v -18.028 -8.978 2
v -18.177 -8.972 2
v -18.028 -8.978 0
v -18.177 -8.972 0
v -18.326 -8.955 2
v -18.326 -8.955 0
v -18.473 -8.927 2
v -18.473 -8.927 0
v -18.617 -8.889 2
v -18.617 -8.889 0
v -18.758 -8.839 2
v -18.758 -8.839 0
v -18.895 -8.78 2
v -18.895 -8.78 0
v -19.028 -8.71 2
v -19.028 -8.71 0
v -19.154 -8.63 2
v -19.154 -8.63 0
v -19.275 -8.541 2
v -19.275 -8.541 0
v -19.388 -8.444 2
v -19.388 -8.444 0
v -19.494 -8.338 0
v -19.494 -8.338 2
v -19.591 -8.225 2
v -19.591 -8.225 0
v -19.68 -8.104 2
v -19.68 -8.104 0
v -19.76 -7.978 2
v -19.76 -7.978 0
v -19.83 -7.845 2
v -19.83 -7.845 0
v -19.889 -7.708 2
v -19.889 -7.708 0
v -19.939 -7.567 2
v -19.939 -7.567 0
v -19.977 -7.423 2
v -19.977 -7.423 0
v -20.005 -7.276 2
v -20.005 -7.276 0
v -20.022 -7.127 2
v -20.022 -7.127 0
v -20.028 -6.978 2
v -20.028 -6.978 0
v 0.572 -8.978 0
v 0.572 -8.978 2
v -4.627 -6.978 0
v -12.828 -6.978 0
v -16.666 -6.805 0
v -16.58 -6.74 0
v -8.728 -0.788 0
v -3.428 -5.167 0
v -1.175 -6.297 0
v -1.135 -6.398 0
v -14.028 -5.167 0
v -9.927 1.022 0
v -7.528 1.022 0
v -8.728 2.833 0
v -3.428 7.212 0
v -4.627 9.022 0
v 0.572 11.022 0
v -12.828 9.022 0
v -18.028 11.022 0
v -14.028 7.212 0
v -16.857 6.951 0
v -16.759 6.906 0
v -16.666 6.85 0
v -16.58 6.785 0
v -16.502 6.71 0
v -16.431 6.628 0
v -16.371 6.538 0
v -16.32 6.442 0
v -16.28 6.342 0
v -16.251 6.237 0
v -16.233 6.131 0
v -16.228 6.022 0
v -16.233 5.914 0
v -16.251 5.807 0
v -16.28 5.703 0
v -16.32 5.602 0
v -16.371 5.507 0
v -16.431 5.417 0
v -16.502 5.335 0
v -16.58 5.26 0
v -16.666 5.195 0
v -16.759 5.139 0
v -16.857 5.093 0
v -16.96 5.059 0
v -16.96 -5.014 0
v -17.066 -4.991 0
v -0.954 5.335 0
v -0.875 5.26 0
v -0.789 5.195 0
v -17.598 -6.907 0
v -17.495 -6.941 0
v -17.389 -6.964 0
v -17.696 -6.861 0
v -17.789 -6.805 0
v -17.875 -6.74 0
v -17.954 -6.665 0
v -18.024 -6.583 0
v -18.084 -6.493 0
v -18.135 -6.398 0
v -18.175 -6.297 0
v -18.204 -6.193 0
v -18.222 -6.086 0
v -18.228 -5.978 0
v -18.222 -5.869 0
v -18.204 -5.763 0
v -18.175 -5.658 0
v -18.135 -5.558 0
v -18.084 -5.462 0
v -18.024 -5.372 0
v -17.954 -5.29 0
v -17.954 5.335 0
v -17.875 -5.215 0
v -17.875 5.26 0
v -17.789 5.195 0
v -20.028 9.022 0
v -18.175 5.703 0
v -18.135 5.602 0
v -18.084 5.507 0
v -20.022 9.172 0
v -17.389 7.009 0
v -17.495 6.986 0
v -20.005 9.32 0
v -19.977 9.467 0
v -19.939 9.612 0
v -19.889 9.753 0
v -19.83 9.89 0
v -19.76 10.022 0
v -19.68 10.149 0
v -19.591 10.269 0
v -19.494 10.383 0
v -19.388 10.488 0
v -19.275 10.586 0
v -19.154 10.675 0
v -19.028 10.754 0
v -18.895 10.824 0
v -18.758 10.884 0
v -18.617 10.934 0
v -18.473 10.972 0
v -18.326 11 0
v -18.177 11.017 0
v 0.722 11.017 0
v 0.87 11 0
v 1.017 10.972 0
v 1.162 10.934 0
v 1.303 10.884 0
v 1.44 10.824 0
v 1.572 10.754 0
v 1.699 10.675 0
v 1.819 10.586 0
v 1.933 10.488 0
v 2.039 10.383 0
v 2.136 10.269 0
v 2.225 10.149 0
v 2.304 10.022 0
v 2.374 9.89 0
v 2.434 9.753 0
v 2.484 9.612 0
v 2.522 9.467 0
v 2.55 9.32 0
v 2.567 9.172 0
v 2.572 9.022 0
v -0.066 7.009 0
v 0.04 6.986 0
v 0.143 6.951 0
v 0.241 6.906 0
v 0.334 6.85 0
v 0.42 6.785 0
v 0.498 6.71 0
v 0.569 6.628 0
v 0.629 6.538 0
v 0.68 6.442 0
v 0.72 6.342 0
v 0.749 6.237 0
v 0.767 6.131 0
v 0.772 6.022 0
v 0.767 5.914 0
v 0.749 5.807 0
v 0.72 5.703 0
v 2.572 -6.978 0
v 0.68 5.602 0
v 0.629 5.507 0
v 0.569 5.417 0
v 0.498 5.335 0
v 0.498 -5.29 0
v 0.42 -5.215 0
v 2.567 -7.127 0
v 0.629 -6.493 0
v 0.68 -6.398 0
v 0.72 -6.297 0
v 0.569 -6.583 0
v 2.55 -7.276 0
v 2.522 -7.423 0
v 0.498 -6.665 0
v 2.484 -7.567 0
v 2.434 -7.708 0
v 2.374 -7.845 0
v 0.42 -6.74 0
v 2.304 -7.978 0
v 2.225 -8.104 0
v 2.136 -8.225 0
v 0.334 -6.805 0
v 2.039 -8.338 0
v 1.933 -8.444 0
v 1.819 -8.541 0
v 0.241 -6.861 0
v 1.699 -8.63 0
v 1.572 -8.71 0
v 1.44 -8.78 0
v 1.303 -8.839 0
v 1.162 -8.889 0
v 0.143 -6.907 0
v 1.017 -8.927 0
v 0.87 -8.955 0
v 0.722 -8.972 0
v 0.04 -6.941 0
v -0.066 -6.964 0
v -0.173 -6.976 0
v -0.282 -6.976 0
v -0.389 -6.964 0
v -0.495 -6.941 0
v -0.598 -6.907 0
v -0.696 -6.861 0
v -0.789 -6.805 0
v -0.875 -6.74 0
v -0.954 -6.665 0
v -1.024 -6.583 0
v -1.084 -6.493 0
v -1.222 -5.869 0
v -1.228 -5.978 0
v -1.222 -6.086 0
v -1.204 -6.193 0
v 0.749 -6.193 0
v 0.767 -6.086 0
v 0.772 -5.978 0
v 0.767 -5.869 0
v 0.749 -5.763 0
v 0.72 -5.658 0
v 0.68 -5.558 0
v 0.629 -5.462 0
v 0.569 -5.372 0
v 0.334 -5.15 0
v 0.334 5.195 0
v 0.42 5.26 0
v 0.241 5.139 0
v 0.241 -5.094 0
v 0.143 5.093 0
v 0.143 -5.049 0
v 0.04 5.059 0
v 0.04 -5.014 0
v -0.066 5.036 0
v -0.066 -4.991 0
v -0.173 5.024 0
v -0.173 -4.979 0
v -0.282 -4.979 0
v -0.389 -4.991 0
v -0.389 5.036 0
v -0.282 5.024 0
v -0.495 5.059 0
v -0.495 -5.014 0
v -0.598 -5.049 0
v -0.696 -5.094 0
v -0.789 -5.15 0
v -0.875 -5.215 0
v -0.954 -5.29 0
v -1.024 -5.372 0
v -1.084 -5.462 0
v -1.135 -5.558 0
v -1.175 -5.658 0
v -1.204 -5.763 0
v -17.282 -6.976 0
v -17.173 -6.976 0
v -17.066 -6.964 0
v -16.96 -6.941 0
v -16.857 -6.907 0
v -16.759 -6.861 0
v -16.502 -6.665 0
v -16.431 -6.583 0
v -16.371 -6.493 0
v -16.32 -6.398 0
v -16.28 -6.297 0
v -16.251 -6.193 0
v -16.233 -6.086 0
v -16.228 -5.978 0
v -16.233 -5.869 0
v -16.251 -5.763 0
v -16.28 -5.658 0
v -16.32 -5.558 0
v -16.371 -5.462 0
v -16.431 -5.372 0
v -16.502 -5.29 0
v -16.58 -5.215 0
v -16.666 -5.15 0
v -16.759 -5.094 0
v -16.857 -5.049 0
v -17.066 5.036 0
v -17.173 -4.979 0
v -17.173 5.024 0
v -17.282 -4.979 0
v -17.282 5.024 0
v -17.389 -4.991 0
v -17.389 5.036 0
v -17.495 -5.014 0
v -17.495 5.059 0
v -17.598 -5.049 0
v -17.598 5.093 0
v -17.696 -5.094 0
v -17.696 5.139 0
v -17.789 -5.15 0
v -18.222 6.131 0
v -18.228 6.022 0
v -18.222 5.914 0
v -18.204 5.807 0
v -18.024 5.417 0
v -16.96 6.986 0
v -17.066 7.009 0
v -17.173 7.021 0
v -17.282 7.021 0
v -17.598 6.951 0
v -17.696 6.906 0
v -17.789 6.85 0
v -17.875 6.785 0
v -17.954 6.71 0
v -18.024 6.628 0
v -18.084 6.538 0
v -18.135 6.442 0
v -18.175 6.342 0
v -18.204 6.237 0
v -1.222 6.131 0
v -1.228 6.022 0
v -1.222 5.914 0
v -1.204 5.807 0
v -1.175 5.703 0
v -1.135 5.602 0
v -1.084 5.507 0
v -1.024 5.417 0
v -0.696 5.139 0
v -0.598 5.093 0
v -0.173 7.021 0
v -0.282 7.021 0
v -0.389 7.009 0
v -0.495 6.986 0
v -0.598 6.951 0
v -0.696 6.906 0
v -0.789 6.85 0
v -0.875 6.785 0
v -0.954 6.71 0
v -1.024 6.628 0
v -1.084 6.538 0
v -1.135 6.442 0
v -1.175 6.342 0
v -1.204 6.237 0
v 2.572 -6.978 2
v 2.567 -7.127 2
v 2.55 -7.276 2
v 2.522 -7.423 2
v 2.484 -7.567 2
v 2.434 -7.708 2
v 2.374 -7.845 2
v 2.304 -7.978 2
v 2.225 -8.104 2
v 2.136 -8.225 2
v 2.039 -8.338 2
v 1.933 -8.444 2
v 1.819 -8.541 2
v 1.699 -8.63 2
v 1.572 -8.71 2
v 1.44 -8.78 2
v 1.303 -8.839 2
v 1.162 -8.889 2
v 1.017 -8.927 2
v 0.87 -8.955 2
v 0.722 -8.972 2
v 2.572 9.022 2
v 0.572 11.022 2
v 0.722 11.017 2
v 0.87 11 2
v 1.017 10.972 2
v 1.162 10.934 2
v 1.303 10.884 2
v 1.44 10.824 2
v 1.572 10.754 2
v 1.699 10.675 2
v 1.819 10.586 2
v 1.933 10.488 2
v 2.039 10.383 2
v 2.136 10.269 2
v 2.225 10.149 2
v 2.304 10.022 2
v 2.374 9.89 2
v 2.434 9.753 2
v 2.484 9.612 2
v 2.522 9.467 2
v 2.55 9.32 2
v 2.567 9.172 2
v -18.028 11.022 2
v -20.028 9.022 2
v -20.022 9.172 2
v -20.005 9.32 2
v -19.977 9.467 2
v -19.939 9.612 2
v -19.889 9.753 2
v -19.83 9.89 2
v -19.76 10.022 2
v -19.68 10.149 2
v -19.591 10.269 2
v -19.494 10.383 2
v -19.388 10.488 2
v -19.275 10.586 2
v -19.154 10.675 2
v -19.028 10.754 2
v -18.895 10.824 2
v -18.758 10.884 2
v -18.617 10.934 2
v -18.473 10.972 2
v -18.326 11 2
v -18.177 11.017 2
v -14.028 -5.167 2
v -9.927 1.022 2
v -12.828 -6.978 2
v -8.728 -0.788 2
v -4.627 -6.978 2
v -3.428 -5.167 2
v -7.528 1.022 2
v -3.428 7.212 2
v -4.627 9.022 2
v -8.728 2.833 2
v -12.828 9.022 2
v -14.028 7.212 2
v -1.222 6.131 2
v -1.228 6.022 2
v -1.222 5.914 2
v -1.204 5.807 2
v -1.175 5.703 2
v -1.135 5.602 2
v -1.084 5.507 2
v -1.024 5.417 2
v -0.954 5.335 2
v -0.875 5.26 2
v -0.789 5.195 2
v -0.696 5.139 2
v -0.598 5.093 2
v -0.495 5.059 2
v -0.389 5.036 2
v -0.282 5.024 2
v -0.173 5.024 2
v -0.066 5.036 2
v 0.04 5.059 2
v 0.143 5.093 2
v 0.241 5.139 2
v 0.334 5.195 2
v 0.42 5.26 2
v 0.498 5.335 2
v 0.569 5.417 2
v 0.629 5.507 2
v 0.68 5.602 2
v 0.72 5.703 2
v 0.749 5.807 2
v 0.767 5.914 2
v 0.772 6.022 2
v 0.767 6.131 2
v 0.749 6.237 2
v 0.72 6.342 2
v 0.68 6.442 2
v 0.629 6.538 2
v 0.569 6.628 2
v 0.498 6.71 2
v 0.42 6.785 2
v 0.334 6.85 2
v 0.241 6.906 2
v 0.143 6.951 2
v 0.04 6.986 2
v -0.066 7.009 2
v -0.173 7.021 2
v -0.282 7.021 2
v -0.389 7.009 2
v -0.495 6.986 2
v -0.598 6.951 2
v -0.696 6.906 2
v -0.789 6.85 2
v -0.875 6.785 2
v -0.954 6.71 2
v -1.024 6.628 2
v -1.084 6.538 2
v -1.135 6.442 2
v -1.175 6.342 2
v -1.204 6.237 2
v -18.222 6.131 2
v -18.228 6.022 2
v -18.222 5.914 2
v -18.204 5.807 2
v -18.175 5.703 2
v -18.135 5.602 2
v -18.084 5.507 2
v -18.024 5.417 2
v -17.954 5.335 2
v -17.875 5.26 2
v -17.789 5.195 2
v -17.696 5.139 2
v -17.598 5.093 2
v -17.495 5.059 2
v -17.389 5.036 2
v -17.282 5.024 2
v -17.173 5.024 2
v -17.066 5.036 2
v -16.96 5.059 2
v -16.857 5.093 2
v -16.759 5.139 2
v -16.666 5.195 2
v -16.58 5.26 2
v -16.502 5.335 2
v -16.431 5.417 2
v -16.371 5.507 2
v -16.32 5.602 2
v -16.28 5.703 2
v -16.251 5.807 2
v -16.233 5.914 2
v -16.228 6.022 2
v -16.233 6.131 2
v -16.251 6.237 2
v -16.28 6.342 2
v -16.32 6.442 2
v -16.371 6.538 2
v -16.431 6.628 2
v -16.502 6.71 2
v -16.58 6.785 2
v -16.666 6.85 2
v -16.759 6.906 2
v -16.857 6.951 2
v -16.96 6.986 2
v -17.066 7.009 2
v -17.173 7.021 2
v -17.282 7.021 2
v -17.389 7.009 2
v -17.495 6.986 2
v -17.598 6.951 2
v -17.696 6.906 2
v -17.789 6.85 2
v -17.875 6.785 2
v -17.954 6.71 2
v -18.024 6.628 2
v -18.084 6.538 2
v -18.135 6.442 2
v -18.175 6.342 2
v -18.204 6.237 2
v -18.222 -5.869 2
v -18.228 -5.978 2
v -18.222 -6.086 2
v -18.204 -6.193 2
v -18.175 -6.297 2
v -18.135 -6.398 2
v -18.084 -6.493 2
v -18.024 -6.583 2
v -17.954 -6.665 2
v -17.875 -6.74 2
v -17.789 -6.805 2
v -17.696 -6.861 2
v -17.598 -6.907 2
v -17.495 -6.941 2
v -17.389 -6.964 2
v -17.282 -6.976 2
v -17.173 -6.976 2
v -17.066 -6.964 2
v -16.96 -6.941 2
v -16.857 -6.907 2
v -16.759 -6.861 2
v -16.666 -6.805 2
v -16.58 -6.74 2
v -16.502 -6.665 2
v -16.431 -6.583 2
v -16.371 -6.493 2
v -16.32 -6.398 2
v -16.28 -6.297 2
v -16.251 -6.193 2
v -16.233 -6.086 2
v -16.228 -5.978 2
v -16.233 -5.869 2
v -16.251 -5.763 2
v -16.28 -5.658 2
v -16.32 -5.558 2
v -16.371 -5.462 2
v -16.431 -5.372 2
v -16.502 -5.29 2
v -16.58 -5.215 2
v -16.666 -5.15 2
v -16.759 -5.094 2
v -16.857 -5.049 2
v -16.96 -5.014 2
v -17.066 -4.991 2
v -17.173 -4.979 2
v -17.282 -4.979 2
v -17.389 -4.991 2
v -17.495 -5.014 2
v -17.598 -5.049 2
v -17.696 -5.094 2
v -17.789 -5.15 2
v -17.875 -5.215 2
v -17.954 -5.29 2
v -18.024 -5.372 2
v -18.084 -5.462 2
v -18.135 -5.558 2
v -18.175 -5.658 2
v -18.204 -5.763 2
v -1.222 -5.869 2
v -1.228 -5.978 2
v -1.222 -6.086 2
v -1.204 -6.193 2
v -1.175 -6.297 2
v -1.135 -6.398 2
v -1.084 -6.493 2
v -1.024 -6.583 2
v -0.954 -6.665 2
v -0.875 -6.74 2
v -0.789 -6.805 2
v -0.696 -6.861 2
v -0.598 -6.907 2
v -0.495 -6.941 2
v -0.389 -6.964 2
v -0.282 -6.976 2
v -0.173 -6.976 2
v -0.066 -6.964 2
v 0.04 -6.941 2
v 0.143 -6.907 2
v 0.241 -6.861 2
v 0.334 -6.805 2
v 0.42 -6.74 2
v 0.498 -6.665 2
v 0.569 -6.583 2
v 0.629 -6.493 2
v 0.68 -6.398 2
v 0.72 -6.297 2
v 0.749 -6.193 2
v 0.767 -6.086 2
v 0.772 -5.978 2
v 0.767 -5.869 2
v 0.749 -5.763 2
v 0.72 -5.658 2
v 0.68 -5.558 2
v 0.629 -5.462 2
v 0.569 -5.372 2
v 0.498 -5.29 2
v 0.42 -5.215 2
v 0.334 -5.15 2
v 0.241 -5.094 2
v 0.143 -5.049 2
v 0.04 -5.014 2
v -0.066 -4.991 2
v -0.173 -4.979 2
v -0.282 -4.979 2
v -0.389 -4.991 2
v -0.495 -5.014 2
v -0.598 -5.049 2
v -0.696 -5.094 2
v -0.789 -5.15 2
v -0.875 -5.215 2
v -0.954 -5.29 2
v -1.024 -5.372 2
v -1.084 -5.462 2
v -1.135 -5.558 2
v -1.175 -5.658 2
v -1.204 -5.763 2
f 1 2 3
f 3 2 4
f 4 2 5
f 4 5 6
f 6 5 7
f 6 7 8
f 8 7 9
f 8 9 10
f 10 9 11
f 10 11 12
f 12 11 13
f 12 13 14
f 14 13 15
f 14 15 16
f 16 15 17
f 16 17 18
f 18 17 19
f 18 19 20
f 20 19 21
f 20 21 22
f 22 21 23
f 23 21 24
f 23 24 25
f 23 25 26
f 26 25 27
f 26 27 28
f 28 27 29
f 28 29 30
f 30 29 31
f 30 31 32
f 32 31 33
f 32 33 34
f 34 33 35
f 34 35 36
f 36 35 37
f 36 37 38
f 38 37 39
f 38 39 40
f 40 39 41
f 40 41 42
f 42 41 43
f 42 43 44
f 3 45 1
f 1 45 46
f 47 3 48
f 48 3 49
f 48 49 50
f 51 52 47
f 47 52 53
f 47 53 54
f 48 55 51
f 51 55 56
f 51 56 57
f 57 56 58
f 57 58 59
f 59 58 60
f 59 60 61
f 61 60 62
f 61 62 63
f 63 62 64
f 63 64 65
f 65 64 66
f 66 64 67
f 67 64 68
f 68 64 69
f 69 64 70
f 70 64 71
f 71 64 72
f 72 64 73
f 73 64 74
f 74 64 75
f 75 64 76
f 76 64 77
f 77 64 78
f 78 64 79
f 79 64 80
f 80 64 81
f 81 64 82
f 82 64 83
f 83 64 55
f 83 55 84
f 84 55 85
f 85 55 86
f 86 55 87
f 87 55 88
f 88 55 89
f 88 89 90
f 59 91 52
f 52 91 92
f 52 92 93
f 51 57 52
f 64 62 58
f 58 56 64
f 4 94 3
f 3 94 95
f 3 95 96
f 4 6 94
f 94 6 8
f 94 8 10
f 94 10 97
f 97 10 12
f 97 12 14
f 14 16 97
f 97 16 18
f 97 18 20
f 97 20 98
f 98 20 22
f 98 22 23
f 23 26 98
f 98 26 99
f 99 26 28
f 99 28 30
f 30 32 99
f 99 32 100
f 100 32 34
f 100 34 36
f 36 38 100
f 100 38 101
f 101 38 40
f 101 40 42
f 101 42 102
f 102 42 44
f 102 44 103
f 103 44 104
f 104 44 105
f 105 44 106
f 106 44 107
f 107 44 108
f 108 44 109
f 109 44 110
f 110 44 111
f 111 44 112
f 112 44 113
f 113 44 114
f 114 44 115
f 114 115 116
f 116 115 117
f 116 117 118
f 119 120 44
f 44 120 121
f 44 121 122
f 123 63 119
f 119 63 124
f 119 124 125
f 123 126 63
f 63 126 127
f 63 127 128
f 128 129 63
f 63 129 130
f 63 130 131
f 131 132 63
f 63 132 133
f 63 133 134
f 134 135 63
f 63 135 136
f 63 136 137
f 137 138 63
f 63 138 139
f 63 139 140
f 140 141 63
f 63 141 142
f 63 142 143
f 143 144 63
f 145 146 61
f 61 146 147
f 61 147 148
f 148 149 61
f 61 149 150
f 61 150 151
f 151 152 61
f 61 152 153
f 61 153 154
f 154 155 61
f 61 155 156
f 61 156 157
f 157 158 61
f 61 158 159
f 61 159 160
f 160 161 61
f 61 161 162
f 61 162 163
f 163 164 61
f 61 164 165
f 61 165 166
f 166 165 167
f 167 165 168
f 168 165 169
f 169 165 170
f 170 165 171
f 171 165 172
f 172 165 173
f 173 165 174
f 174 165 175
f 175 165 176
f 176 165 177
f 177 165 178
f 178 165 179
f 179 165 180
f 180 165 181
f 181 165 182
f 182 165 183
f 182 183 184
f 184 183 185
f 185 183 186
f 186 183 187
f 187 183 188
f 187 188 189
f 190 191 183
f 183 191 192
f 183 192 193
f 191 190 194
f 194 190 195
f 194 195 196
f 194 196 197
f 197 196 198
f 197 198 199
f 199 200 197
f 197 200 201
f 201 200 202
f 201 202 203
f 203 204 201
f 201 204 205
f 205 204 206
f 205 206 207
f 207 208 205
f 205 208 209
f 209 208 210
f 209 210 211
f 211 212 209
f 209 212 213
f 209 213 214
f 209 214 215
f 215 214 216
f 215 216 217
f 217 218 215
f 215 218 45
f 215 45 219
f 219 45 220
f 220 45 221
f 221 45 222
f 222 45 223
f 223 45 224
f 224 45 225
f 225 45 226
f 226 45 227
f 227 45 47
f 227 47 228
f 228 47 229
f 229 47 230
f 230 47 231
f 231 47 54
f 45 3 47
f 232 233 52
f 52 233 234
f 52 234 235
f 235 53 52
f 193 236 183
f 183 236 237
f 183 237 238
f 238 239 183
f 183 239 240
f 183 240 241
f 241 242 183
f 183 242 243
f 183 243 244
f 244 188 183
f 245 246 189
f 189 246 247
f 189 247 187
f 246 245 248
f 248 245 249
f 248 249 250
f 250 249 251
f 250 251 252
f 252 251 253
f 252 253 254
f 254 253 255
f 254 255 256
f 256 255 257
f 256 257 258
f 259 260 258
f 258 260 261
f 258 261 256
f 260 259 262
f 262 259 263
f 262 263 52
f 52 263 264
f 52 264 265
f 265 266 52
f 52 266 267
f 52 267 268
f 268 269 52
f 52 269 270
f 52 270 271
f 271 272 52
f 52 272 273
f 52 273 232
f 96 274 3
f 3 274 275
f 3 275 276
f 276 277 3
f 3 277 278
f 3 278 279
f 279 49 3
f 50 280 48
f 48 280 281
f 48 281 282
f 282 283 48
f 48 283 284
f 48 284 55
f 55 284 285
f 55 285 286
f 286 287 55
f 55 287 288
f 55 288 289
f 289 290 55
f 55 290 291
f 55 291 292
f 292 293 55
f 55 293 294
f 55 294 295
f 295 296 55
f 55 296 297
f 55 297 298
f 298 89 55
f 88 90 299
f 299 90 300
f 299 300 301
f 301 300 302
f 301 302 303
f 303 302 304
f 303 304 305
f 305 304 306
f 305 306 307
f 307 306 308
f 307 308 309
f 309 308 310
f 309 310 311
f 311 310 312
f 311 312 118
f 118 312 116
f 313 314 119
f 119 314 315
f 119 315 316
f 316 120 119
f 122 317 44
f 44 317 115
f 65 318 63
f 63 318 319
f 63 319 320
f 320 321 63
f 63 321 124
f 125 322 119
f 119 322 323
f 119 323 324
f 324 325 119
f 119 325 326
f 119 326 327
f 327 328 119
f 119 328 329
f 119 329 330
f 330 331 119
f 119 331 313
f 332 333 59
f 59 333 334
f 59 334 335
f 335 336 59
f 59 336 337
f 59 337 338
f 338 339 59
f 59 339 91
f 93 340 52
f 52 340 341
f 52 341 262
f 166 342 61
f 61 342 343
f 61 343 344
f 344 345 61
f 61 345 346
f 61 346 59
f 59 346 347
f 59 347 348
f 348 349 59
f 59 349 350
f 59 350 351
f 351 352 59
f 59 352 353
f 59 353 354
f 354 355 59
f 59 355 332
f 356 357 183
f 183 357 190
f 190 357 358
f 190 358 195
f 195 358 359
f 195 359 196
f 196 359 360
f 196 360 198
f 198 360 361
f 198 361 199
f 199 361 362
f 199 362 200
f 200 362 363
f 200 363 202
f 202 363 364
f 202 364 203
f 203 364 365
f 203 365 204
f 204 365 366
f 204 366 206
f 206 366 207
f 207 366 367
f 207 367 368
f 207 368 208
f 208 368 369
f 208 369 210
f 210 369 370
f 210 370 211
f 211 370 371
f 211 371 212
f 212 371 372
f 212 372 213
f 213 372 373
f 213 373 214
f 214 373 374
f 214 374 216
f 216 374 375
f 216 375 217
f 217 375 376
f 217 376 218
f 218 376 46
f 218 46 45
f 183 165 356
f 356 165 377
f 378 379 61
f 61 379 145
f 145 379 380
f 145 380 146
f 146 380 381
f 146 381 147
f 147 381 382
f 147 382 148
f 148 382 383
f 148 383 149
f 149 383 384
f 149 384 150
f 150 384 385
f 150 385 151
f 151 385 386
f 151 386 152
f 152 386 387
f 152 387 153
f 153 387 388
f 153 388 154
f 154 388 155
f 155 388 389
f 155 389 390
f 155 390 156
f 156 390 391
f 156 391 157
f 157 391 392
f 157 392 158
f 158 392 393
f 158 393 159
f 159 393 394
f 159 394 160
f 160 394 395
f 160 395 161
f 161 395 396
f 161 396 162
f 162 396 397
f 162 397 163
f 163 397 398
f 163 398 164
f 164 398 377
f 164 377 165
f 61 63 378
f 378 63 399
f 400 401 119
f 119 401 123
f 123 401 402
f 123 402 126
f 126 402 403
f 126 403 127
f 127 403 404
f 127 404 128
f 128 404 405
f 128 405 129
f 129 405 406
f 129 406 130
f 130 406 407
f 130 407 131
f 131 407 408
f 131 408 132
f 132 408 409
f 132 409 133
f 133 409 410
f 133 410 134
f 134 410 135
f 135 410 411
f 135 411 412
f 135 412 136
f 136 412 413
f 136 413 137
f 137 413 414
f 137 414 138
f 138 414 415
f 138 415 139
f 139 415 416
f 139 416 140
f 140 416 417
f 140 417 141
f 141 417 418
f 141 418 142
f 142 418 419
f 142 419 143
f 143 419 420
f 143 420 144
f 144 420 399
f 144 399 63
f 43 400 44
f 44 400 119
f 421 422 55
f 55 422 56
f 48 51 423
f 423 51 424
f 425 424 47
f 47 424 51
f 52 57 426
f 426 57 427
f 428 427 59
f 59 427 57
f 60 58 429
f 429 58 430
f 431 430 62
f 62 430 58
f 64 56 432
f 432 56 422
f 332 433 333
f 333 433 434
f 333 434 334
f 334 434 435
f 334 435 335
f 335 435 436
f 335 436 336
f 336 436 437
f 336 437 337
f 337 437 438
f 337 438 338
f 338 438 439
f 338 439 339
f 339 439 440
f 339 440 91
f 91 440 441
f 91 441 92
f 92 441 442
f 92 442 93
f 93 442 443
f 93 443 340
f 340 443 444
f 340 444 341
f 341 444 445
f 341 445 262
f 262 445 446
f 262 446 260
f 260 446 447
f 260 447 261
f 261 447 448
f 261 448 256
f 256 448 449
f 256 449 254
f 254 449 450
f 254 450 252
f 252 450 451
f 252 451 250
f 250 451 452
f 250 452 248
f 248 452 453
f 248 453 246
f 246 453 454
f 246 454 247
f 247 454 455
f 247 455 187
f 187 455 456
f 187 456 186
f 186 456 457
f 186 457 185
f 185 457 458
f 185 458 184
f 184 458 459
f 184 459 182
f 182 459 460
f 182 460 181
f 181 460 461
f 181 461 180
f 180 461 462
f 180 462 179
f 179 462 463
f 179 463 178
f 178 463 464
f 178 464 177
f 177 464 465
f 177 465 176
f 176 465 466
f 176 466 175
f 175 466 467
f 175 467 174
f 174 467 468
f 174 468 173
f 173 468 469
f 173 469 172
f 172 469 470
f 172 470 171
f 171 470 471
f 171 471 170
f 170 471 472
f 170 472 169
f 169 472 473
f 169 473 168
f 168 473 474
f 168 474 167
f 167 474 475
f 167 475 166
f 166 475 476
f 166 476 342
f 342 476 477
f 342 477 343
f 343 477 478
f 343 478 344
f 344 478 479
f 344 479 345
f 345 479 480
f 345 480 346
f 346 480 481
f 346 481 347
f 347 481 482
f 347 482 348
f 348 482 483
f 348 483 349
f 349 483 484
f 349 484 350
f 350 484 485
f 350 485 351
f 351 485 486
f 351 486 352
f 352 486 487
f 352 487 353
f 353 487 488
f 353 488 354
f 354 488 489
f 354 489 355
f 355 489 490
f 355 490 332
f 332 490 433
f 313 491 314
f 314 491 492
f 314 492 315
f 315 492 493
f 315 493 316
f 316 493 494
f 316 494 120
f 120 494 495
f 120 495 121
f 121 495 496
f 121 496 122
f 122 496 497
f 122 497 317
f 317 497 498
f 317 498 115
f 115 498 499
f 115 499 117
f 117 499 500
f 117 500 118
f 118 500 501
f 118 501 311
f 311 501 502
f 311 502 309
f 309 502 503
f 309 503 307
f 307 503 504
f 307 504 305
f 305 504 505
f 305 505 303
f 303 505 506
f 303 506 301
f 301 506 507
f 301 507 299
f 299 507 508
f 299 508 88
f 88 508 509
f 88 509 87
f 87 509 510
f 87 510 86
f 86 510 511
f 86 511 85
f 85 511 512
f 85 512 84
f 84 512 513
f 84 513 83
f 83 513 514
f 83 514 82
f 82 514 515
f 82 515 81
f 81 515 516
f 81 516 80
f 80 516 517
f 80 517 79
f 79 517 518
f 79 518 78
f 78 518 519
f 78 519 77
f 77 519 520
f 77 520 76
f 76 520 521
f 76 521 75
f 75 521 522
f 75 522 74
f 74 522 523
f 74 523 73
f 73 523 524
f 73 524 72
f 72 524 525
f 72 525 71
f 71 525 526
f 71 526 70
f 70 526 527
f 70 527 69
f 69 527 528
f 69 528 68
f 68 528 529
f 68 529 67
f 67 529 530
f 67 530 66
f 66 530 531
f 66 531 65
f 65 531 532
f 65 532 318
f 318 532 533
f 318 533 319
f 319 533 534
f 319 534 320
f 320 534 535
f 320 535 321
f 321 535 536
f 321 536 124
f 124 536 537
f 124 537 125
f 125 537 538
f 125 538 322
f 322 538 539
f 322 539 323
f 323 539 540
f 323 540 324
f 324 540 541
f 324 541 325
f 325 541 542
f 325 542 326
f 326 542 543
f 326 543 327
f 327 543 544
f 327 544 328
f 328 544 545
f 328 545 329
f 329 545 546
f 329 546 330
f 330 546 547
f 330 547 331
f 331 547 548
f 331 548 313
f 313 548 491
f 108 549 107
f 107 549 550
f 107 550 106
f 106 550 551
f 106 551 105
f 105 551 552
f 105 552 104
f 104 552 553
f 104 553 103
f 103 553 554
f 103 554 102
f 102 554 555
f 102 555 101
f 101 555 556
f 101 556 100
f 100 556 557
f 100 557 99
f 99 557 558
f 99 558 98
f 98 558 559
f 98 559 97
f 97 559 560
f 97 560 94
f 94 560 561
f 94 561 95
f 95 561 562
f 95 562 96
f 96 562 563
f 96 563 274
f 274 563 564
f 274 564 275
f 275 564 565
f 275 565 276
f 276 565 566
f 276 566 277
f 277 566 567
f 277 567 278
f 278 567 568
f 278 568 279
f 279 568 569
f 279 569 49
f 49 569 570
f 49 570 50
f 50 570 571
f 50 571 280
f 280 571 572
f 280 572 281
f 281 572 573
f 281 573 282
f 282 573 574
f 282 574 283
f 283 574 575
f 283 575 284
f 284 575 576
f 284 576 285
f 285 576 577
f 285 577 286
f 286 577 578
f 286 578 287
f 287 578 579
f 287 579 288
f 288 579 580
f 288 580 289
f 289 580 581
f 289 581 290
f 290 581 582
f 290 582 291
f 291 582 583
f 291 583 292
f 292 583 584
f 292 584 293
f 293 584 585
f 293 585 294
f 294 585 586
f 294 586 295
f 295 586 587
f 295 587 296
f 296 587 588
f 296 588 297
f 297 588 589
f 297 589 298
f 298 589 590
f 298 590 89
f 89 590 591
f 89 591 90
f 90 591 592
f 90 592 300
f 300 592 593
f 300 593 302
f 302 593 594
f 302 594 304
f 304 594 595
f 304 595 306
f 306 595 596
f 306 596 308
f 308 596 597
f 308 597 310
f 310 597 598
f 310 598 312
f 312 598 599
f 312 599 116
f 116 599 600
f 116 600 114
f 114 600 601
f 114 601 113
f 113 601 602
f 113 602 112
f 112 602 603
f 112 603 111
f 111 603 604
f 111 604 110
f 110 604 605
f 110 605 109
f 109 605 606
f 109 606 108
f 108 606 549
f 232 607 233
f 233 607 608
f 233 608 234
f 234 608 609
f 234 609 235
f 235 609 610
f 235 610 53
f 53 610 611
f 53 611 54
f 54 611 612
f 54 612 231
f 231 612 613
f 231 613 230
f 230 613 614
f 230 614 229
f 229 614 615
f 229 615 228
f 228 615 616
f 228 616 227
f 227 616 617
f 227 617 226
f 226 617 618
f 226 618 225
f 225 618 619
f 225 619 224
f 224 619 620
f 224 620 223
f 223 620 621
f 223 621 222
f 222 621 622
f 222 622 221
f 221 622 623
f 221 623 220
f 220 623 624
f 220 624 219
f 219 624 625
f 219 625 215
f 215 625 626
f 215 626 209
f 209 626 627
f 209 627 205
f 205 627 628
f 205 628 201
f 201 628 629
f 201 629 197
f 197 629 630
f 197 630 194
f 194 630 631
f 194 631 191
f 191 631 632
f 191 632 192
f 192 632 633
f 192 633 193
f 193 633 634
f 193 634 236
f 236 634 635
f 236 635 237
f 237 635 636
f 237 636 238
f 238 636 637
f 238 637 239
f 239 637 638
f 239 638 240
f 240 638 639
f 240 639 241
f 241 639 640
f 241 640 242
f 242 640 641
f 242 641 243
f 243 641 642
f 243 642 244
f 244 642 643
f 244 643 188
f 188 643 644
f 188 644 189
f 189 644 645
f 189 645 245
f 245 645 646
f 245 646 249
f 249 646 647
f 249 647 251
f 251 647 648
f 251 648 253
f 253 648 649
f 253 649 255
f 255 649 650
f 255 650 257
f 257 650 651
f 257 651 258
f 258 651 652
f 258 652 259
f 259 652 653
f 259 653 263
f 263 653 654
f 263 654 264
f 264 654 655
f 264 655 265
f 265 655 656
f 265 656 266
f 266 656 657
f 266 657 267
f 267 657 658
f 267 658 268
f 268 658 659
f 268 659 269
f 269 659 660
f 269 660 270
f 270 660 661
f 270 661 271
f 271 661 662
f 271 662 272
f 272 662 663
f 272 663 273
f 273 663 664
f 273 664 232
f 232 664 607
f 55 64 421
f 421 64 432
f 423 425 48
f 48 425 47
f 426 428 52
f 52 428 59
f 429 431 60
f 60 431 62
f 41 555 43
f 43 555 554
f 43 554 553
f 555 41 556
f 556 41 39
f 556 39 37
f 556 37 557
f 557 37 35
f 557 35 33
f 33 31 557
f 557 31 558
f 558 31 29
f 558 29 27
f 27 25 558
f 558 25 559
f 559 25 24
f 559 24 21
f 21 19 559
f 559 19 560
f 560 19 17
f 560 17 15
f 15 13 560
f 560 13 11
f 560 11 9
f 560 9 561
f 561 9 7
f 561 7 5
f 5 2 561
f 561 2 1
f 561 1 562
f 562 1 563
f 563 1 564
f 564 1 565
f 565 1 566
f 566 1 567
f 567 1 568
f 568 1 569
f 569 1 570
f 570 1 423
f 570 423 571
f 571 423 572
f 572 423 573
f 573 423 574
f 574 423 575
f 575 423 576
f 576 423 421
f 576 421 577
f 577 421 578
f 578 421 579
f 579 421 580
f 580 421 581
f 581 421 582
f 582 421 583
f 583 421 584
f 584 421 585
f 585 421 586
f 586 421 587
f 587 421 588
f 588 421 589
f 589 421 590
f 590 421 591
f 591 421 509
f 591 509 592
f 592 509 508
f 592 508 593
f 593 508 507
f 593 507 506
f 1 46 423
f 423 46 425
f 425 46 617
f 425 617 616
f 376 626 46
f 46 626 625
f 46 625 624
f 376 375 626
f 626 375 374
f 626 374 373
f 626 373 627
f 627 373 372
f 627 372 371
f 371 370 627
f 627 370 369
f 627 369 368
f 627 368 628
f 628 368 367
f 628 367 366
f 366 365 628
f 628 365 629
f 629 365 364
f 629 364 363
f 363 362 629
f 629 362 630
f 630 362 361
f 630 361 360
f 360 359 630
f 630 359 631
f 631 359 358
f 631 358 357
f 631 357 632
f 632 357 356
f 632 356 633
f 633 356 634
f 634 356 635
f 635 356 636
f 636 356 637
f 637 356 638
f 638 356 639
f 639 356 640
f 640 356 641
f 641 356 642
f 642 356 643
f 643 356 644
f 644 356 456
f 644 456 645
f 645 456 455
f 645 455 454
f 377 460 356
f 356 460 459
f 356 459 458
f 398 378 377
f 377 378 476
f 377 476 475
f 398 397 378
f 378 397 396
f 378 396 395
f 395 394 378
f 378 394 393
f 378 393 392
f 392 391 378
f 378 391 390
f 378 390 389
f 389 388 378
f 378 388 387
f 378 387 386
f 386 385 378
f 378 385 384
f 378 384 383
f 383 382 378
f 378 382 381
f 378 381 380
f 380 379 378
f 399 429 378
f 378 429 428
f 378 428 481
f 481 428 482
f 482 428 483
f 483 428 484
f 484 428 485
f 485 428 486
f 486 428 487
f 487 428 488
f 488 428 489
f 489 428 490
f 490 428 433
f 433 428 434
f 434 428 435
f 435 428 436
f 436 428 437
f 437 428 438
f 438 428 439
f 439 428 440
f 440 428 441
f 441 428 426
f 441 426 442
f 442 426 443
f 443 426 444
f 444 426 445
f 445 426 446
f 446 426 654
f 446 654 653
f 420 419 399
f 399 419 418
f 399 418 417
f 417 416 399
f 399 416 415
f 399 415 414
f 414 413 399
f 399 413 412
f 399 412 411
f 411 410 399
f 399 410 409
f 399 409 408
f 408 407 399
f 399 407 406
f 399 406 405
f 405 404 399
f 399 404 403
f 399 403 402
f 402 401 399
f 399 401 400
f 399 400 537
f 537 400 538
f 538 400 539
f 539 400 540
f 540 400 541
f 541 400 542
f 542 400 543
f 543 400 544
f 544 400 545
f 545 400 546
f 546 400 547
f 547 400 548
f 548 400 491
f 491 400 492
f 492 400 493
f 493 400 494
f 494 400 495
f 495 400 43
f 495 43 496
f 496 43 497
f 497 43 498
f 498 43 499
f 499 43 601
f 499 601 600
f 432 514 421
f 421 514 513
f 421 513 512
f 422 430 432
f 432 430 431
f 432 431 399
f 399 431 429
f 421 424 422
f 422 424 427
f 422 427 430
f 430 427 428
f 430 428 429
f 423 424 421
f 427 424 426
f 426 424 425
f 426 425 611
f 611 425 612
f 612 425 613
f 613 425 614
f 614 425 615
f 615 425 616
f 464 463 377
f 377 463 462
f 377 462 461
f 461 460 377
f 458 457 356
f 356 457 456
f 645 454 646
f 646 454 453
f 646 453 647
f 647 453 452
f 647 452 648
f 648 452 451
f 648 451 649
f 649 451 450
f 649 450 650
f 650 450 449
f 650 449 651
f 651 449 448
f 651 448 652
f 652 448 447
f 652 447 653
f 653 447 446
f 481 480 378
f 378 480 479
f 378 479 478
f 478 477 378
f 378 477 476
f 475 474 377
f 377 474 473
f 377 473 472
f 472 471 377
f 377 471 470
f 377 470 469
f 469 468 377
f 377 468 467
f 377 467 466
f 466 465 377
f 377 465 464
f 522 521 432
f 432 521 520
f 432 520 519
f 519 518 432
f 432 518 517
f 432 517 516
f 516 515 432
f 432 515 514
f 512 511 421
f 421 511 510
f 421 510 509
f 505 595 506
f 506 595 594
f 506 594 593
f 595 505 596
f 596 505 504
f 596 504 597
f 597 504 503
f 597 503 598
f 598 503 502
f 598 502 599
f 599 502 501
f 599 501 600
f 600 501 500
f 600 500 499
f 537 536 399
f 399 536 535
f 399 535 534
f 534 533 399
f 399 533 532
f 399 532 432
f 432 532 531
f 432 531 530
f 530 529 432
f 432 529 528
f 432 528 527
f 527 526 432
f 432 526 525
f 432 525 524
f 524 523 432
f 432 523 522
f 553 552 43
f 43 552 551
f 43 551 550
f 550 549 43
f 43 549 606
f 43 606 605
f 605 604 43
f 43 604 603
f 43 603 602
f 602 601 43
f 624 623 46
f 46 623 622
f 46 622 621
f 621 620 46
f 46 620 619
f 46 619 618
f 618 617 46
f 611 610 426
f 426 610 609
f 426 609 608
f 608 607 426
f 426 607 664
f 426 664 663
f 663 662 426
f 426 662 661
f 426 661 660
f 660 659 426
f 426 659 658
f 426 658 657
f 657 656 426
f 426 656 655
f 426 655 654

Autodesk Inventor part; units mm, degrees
ref_plane "YZ Plane" through (0, 0, 0) normal (1, 0, 0) x (0, 1, 0)
ref_plane "XZ Plane" through (0, 0, 0) normal (0, 1, 0) x (-1, 0, 0)
ref_plane "XY Plane" through (0, 0, 0) normal (0, 0, 1) x (1, 0, 0)
sketch "Sketch1" plane through (0, 0, 0) normal (0, 0, 1) x (1, 0, 0)
  line L0 (-20.0276, 11.0224) -> (2.5724, 11.0224)
  line L1 (2.5724, 11.0224) -> (2.5724, -8.9776)
  line L2 (2.5724, -8.9776) -> (-20.0276, -8.9776)
  line L3 (-20.0276, -8.9776) -> (-20.0276, 11.0224)
  line L4 (-14.0276, 9.0224) -> (-3.4276, 9.0224)
  line L5 (-3.4276, 9.0224) -> (-3.4276, -6.9776)
  line L6 (-3.4276, -6.9776) -> (-14.0276, -6.9776)
  line L7 (-14.0276, -6.9776) -> (-14.0276, 9.0224)
  point P0 (0, 0)
  point P1 (-20.0276, -6.9776)
  point P2 (-20.0276, 9.0224)
  point P3 (-18.0276, -6.9776)
  point P4 (-18.0276, 9.0224)
  dimension "d0" = 20
  dimension "d1" = 22.6
  dimension "d2" = 2
  dimension "d3" = 6
  dimension "d4" = 6
  dimension "d5" = 2
extrude "Extrusion1" add sketch "Sketch1" along normal blind 2
sketch "Sketch2" plane through (0, 0, 2) normal (0, 0, 1) x (1, 0, 0)
  line L0 (-20.0276, 11.0224) -> (-20.0276, -8.9776) projected
  line L1 (-20.0276, -8.9776) -> (2.5724, -8.9776) projected
  line L2 (2.5724, -8.9776) -> (2.5724, 11.0224) projected
  point P0 (0, 0)
  point P1 (-17.2276, 6.0224)
  point P2 (-17.2276, -5.9776)
  point P3 (-0.2276, 6.0224)
  point P4 (-0.2276, -5.9776)
  dimension "d8" = 2.8
  dimension "d9" = 3
  dimension "d10" = 3
  dimension "d11" = 2.8
  dimension "d12" = 2.8
  dimension "d13" = 2.8
  dimension "d14" = 12
  dimension "d15" = 12
hole "Hole1" at (-17.2276, 6.0224, 2) at (-17.2276, -5.9776, 2) at (-0.2276, 6.0224, 2) at (-0.2276, -5.9776, 2) direction (0, 0, -1) diameter 2 depth 10 tip angle 118
sketch "Sketch3" plane through (0, 0, 2) normal (0, 0, 1) x (1, 0, 0)
  line L0 (-14.0276, -6.9776) -> (-14.0276, 9.0224) projected
  line L1 (-3.4276, 9.0224) -> (-3.4276, -6.9776) projected
  line L2 (-14.0276, 9.0224) -> (-3.4276, -6.9776) construction
  line L3 (-14.8612, 8.4701) -> (-4.2612, -7.5299)
  line L4 (-2.5939, -6.4253) -> (-13.1939, 9.5747)
  arc A0 (-13.1939, 9.5747) -> (-14.8612, 8.4701) centre (-14.0276, 9.0224) ccw
  arc A1 (-4.2612, -7.5299) -> (-2.5939, -6.4253) centre (-3.4276, -6.9776) ccw
  line L5 (-3.4276, 9.0224) -> (-14.0276, -6.9776) construction
  line L6 (-4.2612, 9.5747) -> (-14.8612, -6.4253)
  line L7 (-13.1939, -7.5299) -> (-2.5939, 8.4701)
  arc A2 (-2.5939, 8.4701) -> (-4.2612, 9.5747) centre (-3.4276, 9.0224) ccw
  arc A3 (-14.8612, -6.4253) -> (-13.1939, -7.5299) centre (-14.0276, -6.9776) ccw
  point P0 (0, 0)
  point P1 (-8.7276, 1.0224)
  point P2 (-8.7276, 1.0224)
  point P3 (-9.9271, 1.0224)
  point P4 (-8.7276, -0.7882)
  point P5 (-7.528, 1.0224)
  point P6 (-8.7276, 2.833)
  dimension "d23" = 2
  dimension "d24" = 2
extrude "Extrusion2" add sketch "Sketch3" against normal blind 2 contours L6 L3 L7 A3 | L3 A0 L4 L6 | L6 L4 L7 L3 | L7 L4 A1 L3 | L6 A2 L7 L4
fillet "Fillet1" radius 2 4 edges at (-20.0276, 11.0224, 1) (2.5724, 11.0224, 1) (2.5724, -8.9776, 1) (-20.0276, -8.9776, 1)
properties part number "face-2"
